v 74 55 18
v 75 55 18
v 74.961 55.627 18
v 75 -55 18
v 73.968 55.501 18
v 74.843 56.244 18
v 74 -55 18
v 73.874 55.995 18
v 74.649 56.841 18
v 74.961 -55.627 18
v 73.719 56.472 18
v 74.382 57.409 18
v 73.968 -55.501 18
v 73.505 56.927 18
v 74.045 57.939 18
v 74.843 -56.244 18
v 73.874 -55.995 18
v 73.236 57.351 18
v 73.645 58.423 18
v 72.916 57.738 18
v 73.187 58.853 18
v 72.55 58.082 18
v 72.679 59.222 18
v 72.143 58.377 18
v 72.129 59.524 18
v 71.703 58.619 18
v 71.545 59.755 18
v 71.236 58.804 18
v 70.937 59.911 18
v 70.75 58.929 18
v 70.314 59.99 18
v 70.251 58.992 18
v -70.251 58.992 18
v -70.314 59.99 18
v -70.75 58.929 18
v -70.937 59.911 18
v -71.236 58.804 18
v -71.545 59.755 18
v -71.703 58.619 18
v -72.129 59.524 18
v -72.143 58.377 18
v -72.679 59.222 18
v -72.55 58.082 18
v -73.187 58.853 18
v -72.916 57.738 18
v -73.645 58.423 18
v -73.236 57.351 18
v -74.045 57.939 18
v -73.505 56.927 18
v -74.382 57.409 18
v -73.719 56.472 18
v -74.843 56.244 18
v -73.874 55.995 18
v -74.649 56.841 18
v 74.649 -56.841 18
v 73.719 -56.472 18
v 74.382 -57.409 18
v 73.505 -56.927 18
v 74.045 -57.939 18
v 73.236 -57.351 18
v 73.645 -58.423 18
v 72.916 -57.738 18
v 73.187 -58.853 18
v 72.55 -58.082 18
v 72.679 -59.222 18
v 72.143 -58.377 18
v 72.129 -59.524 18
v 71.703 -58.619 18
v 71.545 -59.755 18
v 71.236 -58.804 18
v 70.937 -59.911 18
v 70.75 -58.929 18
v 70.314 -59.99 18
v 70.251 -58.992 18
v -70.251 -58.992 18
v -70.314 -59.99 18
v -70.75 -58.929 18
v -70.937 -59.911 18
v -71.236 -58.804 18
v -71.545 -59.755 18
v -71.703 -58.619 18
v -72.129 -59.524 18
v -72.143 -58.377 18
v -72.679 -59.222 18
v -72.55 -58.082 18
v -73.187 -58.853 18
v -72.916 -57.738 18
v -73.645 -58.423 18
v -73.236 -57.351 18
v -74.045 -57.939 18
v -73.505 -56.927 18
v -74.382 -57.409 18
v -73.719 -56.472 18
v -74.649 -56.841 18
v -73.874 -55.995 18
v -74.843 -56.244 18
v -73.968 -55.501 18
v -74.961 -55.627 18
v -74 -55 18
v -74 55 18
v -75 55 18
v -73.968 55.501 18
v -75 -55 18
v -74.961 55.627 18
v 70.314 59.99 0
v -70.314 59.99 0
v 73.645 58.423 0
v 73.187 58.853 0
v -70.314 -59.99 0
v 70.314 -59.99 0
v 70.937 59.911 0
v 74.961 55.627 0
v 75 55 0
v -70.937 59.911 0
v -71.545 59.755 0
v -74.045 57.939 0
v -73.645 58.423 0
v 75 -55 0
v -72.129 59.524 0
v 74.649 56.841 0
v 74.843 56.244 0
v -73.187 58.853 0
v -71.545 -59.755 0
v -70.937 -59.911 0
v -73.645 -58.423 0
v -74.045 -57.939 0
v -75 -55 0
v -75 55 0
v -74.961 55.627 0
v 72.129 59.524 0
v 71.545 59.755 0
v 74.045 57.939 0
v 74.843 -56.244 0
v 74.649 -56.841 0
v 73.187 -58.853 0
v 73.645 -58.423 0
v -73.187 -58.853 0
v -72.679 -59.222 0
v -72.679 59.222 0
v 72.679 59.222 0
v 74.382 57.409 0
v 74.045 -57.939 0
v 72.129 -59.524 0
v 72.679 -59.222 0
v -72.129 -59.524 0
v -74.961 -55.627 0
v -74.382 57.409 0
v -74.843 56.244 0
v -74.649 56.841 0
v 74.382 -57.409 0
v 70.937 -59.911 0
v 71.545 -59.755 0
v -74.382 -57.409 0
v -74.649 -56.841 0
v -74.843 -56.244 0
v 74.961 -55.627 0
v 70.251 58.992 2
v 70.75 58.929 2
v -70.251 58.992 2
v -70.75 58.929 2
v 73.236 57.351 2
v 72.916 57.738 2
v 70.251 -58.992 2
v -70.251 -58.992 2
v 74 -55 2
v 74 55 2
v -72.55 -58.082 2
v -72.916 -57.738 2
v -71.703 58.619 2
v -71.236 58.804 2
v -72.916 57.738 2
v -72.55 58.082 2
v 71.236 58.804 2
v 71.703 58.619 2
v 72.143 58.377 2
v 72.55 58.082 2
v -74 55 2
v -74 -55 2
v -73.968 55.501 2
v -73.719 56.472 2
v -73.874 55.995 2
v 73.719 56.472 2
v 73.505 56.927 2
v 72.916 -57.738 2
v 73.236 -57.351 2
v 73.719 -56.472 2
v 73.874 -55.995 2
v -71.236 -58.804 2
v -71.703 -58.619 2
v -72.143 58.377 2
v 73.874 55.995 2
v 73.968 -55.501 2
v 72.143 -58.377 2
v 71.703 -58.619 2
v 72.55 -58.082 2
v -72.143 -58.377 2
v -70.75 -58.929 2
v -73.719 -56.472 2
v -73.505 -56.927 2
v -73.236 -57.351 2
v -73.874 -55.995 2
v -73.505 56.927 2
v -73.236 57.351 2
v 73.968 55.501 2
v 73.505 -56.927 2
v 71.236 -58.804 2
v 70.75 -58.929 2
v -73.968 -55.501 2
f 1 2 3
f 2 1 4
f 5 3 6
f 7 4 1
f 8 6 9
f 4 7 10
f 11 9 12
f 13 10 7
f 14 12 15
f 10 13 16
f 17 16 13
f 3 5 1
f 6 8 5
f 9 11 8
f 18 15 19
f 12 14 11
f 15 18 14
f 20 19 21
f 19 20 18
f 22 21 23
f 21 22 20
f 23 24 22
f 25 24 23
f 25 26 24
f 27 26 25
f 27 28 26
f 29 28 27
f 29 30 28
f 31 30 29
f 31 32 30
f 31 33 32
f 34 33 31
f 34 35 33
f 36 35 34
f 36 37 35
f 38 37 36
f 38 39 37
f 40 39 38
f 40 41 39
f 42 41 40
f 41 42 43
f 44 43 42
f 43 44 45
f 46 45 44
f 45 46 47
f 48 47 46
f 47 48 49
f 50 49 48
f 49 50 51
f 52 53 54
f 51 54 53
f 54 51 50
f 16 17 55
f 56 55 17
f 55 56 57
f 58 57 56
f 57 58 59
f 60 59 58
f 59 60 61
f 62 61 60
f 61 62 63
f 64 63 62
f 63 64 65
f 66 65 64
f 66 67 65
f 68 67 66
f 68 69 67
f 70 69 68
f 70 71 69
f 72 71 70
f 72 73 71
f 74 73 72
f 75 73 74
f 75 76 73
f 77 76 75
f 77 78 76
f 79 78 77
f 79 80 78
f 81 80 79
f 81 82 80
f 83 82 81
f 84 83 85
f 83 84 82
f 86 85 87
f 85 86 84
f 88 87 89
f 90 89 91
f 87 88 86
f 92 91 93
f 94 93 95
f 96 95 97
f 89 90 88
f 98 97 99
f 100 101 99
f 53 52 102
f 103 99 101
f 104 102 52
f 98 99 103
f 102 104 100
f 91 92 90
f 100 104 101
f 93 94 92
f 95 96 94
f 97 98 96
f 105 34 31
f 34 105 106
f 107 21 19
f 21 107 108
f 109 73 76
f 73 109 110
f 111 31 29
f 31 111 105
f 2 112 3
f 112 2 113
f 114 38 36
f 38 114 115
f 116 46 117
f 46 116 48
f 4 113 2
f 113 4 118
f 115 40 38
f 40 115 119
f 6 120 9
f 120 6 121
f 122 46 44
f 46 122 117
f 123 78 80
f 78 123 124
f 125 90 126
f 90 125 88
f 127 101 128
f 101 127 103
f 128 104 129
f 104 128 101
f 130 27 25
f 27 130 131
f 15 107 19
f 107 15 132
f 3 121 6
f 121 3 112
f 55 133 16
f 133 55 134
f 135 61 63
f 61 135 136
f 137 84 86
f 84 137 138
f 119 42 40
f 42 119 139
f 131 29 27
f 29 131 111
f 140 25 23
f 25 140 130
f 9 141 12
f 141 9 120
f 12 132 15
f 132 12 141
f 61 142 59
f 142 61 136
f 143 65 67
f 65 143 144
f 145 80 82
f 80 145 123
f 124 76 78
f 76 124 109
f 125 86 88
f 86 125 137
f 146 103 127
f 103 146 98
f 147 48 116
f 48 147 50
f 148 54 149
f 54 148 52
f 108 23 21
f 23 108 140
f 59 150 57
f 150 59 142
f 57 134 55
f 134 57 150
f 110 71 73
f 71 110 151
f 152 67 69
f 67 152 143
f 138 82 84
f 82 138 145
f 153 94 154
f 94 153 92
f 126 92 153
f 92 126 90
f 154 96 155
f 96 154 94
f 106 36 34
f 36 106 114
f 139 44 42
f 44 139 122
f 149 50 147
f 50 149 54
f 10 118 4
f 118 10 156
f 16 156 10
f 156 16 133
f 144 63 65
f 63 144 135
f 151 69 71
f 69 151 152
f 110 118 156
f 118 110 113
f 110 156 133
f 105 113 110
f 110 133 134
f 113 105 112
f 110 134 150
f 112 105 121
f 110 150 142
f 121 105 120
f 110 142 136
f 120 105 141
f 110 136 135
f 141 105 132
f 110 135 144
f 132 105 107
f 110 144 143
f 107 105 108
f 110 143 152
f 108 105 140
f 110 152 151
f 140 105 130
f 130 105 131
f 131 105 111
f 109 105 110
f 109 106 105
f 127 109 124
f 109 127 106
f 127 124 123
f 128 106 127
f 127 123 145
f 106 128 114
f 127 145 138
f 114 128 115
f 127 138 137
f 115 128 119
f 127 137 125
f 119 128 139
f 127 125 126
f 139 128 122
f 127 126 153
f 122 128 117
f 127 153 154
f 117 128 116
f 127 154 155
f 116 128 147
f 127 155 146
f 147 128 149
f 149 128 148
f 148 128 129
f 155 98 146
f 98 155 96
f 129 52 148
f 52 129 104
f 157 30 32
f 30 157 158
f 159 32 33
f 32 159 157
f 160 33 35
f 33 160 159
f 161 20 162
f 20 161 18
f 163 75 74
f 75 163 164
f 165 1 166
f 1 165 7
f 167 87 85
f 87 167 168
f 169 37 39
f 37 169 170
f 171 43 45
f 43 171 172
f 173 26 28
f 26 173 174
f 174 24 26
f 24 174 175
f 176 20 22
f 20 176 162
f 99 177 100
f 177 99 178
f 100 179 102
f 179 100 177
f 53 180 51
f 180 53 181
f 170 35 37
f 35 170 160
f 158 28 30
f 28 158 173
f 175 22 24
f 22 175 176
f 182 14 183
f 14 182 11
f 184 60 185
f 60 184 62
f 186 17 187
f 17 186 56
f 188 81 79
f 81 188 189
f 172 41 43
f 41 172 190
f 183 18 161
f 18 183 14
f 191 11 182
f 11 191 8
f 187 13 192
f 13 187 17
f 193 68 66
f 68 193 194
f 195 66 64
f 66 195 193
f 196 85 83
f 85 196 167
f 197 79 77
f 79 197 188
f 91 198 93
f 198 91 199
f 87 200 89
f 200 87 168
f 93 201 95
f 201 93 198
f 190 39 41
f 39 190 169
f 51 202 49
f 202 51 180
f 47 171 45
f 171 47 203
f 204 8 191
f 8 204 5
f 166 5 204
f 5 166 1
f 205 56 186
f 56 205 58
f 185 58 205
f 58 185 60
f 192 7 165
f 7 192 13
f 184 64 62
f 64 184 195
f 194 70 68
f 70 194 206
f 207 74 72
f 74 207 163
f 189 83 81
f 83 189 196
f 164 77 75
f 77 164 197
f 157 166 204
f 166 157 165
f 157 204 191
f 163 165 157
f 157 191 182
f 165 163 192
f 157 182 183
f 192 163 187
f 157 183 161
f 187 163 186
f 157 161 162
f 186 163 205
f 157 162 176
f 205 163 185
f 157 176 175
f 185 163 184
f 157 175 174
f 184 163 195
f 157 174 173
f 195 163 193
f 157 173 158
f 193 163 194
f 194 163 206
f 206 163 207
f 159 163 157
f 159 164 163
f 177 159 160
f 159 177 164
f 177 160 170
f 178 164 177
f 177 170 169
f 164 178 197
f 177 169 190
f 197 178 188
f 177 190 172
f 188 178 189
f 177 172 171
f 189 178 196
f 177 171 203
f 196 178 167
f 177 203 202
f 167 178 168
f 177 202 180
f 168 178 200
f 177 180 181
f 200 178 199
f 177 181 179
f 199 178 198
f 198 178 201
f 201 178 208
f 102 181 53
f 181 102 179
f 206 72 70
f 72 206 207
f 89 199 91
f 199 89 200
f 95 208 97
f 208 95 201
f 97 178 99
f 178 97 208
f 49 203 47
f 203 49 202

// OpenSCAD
$fn = 50;


difference() {
	union() {
		hull() {
			translate(v = [-70.0000000000, 55.0000000000, 0]) {
				cylinder(h = 18, r = 5);
			}
			translate(v = [70.0000000000, 55.0000000000, 0]) {
				cylinder(h = 18, r = 5);
			}
			translate(v = [-70.0000000000, -55.0000000000, 0]) {
				cylinder(h = 18, r = 5);
			}
			translate(v = [70.0000000000, -55.0000000000, 0]) {
				cylinder(h = 18, r = 5);
			}
		}
	}
	union() {
		translate(v = [0, 0, 2]) {
			hull() {
				translate(v = [-70.0000000000, 55.0000000000, 0]) {
					cylinder(h = 16, r = 4);
				}
				translate(v = [70.0000000000, 55.0000000000, 0]) {
					cylinder(h = 16, r = 4);
				}
				translate(v = [-70.0000000000, -55.0000000000, 0]) {
					cylinder(h = 16, r = 4);
				}
				translate(v = [70.0000000000, -55.0000000000, 0]) {
					cylinder(h = 16, r = 4);
				}
			}
		}
	}
}
